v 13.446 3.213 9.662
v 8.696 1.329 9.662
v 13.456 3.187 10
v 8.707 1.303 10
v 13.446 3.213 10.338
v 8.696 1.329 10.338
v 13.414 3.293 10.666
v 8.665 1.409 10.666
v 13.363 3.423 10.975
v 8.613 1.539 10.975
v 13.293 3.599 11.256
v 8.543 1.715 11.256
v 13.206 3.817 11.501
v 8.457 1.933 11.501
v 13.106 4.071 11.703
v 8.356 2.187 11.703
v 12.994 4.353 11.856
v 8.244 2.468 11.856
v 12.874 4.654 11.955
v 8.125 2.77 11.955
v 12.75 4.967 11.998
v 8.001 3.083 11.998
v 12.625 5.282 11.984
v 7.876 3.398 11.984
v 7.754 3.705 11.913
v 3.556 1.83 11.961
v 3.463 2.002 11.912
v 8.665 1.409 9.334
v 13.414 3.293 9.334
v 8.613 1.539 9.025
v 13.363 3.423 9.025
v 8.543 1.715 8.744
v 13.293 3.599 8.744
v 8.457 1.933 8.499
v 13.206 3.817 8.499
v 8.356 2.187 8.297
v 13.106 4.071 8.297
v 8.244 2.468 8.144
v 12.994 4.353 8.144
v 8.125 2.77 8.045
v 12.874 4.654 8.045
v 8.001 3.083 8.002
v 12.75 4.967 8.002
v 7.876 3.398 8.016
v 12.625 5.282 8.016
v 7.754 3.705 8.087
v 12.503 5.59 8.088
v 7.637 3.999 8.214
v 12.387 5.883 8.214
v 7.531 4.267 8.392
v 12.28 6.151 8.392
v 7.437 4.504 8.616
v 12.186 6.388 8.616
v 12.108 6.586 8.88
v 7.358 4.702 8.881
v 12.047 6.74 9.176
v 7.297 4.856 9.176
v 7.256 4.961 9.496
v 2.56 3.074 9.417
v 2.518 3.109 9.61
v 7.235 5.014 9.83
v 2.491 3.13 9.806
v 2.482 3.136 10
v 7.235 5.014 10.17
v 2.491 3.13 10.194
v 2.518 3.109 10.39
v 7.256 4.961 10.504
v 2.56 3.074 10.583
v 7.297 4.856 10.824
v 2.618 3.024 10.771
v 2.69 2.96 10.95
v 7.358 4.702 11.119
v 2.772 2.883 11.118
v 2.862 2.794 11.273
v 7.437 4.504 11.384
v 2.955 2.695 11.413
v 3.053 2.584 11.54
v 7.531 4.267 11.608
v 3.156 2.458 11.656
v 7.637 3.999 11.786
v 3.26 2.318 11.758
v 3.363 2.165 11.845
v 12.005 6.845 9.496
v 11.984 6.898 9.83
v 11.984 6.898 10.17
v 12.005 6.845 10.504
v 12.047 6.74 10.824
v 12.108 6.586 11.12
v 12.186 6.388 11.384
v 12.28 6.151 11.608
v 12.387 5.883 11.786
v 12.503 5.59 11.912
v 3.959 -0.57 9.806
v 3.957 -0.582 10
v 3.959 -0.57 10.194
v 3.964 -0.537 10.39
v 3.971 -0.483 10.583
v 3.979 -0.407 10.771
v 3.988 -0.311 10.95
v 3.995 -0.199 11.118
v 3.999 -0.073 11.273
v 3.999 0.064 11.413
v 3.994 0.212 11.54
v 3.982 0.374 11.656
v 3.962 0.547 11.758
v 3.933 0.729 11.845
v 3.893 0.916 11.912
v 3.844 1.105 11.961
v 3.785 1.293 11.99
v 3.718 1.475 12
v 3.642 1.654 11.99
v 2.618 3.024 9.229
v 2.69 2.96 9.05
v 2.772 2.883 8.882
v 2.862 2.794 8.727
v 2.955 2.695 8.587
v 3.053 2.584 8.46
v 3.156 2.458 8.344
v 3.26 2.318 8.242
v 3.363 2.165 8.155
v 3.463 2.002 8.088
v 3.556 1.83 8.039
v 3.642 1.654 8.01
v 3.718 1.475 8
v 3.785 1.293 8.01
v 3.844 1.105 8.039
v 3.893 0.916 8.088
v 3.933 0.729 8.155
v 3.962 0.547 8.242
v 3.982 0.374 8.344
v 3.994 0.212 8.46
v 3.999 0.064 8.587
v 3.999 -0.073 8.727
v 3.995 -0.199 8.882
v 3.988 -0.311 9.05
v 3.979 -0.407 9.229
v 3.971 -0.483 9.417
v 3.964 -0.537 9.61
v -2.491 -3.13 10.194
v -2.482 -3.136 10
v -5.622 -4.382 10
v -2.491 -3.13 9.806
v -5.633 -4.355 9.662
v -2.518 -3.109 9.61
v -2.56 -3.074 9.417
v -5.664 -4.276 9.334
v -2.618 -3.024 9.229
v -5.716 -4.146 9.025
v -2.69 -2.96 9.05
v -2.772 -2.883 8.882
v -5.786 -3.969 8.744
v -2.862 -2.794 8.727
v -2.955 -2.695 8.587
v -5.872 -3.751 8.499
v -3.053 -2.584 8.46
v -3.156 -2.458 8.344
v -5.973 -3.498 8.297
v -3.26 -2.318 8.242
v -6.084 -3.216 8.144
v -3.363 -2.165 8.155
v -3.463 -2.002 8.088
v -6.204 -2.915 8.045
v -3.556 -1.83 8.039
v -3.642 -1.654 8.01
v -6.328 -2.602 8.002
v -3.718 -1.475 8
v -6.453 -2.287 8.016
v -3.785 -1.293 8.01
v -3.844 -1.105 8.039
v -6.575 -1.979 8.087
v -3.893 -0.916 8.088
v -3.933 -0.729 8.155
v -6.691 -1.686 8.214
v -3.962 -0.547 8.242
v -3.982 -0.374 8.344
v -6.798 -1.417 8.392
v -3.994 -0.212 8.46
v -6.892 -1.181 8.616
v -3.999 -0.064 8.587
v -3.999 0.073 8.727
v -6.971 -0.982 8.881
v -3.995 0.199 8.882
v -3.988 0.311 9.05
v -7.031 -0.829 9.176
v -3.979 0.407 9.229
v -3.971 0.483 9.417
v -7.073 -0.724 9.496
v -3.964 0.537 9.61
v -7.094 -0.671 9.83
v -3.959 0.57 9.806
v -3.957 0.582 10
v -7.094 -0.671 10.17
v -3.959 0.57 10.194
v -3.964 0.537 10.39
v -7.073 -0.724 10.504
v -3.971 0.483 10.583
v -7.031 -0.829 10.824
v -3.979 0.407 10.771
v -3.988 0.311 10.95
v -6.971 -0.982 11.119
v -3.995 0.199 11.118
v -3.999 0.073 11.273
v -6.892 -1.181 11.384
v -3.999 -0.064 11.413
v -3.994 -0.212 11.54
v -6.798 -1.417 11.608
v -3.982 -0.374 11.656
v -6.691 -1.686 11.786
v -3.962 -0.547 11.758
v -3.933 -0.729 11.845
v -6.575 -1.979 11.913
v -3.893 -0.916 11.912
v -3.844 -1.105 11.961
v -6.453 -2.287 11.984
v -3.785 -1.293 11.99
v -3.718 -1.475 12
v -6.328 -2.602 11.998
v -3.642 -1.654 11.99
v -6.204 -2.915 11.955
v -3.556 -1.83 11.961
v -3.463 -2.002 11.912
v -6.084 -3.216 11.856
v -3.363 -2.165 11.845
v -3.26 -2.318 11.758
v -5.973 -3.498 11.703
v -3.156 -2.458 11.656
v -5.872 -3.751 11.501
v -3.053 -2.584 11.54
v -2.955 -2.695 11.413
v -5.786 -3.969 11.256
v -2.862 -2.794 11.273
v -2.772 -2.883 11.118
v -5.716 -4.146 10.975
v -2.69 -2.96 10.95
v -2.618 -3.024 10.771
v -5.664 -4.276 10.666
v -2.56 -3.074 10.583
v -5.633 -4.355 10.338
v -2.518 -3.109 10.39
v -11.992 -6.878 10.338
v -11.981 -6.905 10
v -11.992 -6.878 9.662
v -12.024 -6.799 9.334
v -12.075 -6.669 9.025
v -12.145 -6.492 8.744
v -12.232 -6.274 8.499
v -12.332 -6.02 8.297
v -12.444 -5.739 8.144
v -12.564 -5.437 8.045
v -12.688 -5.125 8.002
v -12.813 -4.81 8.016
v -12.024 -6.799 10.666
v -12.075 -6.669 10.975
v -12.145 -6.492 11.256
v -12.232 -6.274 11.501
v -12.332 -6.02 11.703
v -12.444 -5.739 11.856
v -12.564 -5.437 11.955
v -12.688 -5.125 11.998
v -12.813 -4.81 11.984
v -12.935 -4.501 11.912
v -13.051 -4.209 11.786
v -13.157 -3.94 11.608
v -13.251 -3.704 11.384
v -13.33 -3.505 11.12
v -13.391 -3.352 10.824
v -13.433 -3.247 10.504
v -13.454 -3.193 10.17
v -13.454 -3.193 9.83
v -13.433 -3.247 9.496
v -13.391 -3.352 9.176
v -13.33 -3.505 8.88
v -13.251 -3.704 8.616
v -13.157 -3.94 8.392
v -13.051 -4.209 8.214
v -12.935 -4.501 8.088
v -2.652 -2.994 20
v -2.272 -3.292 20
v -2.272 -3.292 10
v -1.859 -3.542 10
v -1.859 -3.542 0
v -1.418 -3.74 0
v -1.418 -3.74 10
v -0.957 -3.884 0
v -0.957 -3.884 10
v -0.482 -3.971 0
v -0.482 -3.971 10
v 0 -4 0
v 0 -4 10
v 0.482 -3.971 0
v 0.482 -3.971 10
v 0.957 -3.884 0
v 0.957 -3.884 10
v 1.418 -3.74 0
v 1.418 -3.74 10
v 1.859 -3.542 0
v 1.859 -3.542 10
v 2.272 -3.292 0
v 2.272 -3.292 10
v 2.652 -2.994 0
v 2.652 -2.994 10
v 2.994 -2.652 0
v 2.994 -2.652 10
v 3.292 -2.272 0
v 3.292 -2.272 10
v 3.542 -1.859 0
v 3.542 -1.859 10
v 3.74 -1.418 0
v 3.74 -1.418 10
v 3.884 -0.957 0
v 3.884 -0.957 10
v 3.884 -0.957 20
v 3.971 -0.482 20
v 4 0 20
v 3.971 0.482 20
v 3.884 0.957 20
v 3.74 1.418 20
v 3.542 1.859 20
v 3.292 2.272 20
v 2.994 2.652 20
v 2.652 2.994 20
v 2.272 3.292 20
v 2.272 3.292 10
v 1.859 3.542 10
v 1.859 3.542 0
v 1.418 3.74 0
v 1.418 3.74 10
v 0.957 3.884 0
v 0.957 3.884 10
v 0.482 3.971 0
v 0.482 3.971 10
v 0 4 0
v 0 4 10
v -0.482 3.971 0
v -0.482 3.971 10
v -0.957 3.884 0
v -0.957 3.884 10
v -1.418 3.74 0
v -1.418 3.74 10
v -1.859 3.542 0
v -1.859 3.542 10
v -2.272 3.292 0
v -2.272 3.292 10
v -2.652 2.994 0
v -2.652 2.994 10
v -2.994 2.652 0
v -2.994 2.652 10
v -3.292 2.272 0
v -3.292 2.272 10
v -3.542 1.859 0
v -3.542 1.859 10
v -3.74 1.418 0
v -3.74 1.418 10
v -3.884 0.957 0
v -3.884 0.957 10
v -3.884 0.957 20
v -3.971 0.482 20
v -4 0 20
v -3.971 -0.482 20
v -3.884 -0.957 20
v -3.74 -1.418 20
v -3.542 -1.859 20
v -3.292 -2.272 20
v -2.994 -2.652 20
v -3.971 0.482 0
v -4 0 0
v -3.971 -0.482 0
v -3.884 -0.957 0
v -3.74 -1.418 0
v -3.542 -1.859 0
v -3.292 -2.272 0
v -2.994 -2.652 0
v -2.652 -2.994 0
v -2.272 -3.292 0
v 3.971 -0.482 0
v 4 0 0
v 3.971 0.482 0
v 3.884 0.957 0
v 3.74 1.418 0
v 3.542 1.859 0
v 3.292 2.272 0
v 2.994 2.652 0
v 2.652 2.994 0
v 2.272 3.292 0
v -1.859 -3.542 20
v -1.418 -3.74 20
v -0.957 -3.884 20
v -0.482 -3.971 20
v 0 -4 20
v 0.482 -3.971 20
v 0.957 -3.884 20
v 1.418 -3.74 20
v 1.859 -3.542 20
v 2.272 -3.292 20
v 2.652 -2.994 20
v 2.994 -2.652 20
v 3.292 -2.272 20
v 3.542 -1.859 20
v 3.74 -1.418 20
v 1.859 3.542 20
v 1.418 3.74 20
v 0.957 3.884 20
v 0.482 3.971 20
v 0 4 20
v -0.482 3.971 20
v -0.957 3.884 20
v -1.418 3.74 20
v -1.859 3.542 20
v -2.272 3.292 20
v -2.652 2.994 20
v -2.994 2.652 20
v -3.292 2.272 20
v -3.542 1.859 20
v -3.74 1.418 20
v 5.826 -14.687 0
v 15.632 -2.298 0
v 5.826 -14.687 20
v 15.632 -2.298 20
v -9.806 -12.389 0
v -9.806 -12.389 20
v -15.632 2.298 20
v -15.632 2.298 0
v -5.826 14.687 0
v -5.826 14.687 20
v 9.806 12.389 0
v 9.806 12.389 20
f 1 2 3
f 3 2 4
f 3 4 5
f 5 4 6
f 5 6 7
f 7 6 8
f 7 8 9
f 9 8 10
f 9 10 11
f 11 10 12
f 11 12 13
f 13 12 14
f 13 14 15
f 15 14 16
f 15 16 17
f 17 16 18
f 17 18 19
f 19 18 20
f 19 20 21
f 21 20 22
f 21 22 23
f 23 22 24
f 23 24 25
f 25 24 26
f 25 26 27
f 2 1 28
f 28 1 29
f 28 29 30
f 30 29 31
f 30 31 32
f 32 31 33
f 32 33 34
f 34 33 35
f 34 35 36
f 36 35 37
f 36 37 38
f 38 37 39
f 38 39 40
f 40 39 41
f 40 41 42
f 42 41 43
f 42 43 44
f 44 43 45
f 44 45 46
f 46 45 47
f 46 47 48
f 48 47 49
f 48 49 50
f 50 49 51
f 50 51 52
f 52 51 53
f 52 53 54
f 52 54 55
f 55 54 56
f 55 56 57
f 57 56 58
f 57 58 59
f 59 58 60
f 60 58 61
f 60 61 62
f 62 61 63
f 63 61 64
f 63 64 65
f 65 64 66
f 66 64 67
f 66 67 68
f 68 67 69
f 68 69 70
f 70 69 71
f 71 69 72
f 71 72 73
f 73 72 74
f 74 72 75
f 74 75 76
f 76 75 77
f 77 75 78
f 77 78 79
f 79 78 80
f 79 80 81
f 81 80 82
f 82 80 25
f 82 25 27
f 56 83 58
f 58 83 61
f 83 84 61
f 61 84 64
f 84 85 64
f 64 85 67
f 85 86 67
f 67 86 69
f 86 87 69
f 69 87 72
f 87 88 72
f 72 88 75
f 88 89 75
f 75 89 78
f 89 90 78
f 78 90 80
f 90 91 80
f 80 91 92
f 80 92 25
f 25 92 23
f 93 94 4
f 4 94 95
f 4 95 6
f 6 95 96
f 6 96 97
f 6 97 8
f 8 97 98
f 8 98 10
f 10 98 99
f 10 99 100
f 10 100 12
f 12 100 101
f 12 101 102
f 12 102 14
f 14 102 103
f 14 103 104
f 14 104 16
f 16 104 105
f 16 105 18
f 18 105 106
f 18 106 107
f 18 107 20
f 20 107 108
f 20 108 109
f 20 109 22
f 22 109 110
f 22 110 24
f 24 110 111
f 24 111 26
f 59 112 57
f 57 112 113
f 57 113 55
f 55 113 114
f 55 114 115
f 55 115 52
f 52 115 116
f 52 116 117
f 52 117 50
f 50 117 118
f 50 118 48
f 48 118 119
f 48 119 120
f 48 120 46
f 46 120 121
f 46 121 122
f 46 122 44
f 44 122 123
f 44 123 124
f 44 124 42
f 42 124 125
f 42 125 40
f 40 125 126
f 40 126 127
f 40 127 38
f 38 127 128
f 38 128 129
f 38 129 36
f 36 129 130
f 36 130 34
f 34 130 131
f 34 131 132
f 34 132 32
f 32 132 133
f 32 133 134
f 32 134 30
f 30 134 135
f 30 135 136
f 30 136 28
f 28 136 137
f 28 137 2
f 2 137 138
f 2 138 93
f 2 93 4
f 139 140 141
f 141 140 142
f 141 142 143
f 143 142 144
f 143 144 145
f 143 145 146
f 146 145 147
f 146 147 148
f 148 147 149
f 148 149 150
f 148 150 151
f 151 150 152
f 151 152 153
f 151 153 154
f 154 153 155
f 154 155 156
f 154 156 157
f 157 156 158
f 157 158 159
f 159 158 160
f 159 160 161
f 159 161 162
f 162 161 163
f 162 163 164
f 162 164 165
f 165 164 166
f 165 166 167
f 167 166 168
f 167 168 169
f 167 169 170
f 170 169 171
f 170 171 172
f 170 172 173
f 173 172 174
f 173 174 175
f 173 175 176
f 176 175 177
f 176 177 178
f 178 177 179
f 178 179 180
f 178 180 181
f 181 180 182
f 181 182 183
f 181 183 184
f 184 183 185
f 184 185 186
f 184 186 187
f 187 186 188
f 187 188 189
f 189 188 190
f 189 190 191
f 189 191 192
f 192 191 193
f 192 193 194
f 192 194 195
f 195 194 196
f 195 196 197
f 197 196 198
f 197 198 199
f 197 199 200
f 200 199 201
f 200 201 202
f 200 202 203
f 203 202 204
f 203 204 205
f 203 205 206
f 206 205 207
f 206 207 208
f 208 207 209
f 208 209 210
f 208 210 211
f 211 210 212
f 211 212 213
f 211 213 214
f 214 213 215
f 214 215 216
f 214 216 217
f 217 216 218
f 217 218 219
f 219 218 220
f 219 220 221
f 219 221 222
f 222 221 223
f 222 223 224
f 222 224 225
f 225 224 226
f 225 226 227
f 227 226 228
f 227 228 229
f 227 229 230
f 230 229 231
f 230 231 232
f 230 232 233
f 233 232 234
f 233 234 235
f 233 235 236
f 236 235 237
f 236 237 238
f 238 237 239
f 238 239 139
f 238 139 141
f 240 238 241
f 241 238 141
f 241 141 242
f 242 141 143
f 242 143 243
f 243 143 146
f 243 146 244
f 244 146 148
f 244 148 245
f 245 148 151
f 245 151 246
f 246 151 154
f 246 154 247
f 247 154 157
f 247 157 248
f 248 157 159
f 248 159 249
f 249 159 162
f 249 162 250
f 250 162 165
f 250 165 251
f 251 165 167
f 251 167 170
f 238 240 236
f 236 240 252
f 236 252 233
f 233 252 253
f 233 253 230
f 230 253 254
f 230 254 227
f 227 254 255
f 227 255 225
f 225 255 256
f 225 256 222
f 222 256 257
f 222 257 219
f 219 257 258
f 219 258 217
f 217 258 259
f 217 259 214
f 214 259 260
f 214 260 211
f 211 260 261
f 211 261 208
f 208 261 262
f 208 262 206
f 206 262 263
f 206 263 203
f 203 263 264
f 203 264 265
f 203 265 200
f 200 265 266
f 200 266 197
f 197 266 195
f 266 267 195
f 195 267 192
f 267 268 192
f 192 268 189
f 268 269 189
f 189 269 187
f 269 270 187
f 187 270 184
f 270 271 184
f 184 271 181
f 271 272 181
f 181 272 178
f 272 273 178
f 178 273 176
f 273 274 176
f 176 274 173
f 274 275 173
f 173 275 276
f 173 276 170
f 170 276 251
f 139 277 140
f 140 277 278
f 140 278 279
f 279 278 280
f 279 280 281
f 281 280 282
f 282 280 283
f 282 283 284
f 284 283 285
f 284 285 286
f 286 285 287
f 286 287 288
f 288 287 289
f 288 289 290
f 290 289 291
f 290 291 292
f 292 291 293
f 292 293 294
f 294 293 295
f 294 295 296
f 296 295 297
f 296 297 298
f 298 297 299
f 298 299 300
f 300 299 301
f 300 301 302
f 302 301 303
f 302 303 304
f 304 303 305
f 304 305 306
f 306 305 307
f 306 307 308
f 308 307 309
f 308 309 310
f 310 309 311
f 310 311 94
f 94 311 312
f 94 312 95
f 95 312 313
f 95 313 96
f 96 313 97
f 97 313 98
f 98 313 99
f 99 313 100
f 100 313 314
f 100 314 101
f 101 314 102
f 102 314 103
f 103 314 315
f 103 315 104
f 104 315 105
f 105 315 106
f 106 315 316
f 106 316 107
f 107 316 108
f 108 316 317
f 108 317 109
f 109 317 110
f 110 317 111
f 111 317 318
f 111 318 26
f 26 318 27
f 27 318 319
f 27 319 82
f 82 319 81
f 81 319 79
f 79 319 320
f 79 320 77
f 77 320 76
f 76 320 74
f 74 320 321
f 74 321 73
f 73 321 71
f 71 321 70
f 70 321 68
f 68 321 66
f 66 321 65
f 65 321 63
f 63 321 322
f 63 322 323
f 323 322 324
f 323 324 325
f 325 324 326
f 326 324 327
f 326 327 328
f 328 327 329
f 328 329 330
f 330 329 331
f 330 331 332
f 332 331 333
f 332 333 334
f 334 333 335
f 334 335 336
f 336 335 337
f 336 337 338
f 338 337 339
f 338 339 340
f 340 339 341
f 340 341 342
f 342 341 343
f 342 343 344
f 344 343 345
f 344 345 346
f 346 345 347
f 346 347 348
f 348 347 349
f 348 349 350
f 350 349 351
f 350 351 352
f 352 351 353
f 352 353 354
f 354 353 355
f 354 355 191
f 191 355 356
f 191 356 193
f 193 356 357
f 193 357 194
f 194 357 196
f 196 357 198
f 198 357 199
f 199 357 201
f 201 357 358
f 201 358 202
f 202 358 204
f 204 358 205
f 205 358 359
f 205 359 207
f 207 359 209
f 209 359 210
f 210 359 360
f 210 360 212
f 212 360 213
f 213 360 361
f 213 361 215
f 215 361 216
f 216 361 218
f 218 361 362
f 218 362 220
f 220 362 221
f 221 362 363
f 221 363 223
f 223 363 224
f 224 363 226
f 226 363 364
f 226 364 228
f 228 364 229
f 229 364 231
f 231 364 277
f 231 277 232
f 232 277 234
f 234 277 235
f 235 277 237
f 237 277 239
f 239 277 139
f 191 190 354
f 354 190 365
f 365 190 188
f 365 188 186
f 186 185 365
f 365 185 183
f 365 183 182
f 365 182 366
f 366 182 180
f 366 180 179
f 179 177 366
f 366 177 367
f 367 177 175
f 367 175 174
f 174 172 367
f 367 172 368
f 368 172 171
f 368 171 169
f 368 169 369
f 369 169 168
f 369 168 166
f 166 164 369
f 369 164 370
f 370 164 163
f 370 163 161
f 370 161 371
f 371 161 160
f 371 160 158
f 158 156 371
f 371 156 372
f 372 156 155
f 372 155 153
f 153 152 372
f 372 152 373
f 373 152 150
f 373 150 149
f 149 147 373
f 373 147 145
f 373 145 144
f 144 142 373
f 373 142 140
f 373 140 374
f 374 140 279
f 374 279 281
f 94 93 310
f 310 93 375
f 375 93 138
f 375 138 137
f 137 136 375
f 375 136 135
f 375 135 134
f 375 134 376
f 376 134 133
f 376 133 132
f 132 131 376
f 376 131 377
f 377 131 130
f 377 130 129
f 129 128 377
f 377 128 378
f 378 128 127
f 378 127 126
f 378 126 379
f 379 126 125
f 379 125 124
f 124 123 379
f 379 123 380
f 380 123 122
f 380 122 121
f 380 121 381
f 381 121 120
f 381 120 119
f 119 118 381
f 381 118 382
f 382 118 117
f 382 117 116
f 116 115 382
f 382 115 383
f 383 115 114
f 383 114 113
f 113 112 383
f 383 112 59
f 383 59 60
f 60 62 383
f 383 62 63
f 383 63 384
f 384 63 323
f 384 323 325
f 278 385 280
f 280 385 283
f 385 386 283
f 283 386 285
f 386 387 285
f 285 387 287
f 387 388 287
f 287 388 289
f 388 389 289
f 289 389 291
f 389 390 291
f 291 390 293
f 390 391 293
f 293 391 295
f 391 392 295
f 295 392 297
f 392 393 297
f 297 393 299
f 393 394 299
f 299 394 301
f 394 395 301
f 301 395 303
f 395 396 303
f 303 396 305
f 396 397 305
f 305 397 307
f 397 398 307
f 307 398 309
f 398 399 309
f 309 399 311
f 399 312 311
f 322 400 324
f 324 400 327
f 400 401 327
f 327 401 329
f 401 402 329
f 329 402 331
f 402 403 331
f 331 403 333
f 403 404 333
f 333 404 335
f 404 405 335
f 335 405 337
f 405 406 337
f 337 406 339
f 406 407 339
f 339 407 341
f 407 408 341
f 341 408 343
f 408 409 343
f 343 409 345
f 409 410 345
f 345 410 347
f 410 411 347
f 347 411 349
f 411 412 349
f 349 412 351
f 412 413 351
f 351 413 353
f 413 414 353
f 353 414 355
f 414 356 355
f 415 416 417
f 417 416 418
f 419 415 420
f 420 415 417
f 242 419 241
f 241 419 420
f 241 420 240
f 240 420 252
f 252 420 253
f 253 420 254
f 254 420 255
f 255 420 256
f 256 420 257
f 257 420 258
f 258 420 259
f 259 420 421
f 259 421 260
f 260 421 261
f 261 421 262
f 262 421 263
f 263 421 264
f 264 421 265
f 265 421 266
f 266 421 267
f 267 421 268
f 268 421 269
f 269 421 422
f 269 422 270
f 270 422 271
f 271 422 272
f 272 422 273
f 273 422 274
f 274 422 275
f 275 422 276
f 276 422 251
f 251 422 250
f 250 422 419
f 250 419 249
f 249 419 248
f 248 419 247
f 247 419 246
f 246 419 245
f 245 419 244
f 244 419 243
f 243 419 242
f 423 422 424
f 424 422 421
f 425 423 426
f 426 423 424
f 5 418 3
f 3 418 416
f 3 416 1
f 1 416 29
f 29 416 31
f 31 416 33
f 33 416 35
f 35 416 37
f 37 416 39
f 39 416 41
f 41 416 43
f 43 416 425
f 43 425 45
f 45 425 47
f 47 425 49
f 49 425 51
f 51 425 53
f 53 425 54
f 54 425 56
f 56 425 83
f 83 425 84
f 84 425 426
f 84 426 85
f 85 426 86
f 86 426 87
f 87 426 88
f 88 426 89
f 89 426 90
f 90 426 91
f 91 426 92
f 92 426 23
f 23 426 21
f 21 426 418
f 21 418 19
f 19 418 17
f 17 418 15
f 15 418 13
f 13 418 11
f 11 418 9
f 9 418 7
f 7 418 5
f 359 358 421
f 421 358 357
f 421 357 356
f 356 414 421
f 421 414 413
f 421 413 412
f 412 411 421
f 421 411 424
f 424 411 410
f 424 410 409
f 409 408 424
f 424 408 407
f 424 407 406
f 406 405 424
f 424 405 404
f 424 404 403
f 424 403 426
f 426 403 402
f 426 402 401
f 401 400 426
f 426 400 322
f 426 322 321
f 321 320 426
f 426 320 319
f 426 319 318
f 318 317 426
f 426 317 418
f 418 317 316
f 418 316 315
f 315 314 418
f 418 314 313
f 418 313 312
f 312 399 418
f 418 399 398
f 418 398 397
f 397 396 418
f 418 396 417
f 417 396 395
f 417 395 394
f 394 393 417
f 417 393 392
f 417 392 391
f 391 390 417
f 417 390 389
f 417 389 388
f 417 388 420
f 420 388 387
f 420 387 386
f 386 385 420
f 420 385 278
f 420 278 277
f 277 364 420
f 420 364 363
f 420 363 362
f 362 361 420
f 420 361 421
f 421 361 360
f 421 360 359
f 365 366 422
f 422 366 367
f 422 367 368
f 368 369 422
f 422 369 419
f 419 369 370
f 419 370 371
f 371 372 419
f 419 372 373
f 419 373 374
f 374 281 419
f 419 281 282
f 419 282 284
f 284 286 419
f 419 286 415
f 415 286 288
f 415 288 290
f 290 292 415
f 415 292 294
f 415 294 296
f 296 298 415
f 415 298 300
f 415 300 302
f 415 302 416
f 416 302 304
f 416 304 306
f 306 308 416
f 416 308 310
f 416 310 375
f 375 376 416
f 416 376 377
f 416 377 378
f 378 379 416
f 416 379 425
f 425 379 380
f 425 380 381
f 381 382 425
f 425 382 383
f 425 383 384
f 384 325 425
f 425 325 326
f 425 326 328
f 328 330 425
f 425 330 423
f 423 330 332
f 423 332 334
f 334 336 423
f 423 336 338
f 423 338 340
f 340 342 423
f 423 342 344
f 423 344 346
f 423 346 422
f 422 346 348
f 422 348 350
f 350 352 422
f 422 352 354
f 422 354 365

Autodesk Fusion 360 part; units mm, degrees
sketch "Sketch1" plane through (0, 0, 0) normal (0, 0, 1) x (1, 0, 0)
  line L0 (9.8058, 12.389) -> (-5.8263, 14.6865)
  line L1 (-5.8263, 14.6865) -> (-15.6321, 2.2975)
  line L2 (-15.6321, 2.2975) -> (-9.8058, -12.389)
  line L3 (-9.8058, -12.389) -> (5.8263, -14.6865)
  line L4 (5.8263, -14.6865) -> (15.6321, -2.2975)
  line L5 (15.6321, -2.2975) -> (9.8058, 12.389)
  circle A0 centre (0, 0) radius 4
  dimension "d2" = 15.8
  dimension "d4" = 8
extrude "Extrude1" add sketch "Sketch1" along normal blind 20
sketch "Sketch2" plane through (12.7189, 5.0457, 0) normal (0.9295, 0.3688, 0) x (-0.3688, 0.9295, 0)
  line L0 (-7.9, 0) -> (7.9, 0)
  line L1 (7.9, 0) -> (7.9, 20)
  line L2 (7.9, 20) -> (-7.9, 20)
  line L3 (-7.9, 20) -> (-7.9, 0)
  circle A0 centre (0, 10) radius 2
  dimension "d10" = 4
  dimension "d11" = 10
  dimension "d12" = 7.9
extrude "Extrude2" cut sketch "Sketch2" against normal blind 115.8 contours A0
equation "hub_nut_polygon_radius = 7.9 mm"
equation "d2 = hub_nut_polygon_radius * 2"
equation "center_hole_radius = 4 mm"
equation "d4 = center_hole_radius * 2"
equation "thickness = 20 mm"
equation "extra = 100 mm"
equation "dowel_pin_hole_radius = 2 mm"
equation "d8 = thickness"
equation "d10 = dowel_pin_hole_radius * 2"
equation "d11 = thickness / 2"
equation "d12 = hub_nut_polygon_radius"
equation "d13 = -( hub_nut_polygon_radius * 2 + extra )"
